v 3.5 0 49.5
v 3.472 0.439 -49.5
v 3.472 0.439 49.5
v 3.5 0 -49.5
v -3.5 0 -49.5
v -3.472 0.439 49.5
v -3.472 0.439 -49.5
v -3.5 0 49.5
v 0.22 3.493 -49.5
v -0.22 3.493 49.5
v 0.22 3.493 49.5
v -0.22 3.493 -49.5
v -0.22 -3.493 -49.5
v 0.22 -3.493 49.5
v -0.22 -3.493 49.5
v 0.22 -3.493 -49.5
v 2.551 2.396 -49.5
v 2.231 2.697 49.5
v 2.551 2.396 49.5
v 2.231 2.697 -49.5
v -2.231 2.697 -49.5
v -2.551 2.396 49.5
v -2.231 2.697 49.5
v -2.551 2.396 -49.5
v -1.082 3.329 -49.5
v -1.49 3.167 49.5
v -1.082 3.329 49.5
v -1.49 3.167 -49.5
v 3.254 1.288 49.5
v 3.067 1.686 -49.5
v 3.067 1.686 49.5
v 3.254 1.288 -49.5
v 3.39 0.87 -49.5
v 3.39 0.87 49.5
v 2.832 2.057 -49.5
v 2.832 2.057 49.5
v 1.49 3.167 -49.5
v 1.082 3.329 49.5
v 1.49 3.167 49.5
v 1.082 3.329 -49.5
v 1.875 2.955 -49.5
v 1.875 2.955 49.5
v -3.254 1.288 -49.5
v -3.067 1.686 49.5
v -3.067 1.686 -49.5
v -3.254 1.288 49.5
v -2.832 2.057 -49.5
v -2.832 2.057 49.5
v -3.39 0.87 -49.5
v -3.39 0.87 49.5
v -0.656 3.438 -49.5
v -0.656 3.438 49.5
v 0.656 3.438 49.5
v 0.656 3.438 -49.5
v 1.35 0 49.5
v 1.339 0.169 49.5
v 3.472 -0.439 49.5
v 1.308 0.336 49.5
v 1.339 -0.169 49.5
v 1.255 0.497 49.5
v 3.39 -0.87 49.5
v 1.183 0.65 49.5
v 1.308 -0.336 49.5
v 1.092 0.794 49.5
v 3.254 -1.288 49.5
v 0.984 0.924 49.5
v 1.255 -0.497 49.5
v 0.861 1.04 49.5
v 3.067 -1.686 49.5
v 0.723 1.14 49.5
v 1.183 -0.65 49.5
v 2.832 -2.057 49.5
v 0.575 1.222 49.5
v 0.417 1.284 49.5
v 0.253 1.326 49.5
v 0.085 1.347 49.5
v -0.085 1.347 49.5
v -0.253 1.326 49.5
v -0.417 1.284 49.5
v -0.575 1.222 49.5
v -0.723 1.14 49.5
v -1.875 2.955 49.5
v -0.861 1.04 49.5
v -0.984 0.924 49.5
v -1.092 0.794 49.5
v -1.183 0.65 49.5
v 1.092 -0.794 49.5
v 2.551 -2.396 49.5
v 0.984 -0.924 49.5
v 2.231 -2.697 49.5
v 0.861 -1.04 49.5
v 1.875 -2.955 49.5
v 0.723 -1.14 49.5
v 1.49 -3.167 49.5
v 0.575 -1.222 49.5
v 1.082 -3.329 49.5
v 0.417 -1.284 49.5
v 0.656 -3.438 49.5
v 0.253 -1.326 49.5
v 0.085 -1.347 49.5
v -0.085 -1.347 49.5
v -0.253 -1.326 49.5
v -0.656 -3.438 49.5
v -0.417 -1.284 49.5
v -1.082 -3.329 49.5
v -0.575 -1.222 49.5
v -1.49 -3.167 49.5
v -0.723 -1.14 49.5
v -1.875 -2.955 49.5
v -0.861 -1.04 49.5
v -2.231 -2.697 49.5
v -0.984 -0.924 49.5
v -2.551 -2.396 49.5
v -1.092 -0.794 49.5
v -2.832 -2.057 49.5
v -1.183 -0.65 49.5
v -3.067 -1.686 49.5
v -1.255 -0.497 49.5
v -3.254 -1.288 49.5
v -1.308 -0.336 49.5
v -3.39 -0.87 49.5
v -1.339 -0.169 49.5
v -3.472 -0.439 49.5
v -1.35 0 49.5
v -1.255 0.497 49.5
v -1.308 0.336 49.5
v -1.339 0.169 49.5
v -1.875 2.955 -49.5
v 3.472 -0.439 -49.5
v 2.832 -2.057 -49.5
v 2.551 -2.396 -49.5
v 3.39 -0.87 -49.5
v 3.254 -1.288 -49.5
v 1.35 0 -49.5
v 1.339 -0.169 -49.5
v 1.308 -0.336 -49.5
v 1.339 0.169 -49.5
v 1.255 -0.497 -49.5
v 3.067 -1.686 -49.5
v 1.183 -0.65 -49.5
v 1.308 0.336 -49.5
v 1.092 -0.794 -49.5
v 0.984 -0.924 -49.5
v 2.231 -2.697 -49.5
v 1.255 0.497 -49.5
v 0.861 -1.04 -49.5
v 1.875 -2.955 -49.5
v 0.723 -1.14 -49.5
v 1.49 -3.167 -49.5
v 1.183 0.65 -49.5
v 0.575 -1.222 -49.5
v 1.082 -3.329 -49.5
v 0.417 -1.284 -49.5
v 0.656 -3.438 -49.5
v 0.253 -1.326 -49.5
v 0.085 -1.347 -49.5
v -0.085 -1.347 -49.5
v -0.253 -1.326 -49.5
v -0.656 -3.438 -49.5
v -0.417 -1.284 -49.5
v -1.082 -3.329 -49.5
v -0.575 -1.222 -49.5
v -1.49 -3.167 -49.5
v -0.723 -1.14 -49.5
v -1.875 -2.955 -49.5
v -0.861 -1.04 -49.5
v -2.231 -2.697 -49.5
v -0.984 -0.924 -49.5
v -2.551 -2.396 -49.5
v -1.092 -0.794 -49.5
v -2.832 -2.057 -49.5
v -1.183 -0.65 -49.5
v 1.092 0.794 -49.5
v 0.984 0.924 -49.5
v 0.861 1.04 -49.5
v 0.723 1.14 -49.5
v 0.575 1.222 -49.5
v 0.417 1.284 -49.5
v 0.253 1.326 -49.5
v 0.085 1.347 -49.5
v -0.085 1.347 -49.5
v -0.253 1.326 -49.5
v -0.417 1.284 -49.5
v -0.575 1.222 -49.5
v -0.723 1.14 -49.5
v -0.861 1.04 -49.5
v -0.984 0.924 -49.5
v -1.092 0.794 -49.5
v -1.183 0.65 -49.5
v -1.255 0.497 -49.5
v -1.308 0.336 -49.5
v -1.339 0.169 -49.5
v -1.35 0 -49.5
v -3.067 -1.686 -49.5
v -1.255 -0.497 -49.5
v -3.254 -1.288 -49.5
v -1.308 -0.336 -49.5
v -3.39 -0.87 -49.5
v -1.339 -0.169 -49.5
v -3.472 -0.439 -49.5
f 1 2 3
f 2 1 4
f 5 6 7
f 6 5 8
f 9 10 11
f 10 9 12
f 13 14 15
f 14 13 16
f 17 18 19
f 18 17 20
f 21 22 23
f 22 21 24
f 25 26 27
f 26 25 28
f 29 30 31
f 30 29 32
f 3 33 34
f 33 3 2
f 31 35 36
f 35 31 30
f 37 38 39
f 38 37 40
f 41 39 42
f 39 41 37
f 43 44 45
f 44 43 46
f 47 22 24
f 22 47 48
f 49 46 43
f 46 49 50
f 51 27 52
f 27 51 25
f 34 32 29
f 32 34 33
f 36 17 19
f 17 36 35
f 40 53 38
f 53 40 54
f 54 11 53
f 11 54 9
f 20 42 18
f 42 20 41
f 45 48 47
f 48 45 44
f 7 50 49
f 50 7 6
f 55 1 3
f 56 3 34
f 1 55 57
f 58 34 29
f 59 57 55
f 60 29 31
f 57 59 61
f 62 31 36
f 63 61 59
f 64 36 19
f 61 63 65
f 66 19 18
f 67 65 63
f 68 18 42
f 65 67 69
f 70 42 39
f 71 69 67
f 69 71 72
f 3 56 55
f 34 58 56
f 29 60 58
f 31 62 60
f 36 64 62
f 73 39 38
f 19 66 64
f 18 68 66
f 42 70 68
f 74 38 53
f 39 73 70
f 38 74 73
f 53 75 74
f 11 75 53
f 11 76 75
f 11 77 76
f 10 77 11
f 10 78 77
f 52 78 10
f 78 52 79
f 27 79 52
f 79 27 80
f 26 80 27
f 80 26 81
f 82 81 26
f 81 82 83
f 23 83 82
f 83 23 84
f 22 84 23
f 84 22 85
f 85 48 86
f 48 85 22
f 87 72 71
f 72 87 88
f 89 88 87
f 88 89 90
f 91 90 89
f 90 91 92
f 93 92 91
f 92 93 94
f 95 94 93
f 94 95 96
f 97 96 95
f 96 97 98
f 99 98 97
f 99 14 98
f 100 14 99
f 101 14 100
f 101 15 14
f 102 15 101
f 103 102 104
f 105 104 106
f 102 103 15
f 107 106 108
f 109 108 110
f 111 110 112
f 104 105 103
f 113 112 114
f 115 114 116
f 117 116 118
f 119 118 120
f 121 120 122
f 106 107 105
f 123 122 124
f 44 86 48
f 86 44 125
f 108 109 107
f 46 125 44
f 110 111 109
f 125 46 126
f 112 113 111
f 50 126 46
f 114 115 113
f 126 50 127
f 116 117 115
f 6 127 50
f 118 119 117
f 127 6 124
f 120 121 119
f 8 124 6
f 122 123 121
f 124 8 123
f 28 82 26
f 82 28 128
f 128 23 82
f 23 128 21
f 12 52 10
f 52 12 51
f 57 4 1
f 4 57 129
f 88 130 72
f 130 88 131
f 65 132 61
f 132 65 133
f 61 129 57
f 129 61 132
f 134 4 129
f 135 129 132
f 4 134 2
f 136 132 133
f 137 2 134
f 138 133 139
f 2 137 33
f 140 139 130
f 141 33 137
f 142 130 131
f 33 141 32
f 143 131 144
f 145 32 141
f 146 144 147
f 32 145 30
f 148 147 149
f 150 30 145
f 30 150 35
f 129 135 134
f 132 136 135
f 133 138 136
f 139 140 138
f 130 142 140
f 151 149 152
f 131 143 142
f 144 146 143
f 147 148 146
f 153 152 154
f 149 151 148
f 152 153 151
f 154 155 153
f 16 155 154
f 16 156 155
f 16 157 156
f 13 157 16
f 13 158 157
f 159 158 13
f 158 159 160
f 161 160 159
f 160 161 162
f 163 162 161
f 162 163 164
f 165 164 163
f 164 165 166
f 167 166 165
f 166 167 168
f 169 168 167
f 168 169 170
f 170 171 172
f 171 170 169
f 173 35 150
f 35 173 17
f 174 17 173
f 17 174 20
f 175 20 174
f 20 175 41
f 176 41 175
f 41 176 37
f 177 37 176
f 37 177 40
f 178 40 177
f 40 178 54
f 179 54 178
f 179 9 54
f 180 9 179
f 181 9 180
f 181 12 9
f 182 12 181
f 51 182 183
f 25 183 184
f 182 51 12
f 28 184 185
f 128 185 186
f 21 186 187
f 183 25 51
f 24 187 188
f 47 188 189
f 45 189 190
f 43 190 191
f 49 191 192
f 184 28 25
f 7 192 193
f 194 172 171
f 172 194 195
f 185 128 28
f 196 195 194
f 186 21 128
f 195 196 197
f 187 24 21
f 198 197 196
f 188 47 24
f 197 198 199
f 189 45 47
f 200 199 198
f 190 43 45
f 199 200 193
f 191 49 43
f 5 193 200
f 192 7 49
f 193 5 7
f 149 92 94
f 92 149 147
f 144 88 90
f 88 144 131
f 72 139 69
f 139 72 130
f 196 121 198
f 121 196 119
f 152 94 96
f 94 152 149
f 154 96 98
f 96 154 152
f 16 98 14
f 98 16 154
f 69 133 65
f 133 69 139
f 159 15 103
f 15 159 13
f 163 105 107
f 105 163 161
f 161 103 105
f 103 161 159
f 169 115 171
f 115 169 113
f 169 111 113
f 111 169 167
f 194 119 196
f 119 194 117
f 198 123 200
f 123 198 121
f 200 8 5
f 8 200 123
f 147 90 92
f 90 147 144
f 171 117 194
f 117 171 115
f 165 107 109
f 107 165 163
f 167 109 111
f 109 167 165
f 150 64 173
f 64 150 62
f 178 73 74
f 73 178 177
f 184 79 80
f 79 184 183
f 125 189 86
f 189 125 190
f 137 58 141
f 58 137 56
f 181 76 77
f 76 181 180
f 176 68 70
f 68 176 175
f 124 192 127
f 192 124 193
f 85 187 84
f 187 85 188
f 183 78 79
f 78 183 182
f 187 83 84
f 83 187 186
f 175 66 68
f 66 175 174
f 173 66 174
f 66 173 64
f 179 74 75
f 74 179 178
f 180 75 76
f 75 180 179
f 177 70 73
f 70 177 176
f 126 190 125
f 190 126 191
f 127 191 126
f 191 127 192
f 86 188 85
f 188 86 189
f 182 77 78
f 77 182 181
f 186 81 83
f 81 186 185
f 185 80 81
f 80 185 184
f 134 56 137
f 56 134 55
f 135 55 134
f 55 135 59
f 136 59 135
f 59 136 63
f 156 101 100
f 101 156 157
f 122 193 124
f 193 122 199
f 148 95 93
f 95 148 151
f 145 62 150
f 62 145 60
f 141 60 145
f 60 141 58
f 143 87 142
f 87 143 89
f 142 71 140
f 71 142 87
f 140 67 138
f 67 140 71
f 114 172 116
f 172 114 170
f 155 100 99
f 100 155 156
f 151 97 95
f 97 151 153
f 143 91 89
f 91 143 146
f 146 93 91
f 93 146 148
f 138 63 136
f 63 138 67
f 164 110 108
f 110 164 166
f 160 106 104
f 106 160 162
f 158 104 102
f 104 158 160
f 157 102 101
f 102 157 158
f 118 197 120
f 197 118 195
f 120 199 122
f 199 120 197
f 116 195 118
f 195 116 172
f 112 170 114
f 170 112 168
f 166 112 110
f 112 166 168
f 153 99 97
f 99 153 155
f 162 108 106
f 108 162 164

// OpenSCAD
$fn = 50;


difference() {
	union() {
		translate(v = [0, 0, -49.5000000000]) {
			cylinder(h = 99, r = 3.5000000000);
		}
	}
	union() {
		translate(v = [0, 0, -100.0000000000]) {
			cylinder(h = 200, r = 1.3500000000);
		}
	}
}
